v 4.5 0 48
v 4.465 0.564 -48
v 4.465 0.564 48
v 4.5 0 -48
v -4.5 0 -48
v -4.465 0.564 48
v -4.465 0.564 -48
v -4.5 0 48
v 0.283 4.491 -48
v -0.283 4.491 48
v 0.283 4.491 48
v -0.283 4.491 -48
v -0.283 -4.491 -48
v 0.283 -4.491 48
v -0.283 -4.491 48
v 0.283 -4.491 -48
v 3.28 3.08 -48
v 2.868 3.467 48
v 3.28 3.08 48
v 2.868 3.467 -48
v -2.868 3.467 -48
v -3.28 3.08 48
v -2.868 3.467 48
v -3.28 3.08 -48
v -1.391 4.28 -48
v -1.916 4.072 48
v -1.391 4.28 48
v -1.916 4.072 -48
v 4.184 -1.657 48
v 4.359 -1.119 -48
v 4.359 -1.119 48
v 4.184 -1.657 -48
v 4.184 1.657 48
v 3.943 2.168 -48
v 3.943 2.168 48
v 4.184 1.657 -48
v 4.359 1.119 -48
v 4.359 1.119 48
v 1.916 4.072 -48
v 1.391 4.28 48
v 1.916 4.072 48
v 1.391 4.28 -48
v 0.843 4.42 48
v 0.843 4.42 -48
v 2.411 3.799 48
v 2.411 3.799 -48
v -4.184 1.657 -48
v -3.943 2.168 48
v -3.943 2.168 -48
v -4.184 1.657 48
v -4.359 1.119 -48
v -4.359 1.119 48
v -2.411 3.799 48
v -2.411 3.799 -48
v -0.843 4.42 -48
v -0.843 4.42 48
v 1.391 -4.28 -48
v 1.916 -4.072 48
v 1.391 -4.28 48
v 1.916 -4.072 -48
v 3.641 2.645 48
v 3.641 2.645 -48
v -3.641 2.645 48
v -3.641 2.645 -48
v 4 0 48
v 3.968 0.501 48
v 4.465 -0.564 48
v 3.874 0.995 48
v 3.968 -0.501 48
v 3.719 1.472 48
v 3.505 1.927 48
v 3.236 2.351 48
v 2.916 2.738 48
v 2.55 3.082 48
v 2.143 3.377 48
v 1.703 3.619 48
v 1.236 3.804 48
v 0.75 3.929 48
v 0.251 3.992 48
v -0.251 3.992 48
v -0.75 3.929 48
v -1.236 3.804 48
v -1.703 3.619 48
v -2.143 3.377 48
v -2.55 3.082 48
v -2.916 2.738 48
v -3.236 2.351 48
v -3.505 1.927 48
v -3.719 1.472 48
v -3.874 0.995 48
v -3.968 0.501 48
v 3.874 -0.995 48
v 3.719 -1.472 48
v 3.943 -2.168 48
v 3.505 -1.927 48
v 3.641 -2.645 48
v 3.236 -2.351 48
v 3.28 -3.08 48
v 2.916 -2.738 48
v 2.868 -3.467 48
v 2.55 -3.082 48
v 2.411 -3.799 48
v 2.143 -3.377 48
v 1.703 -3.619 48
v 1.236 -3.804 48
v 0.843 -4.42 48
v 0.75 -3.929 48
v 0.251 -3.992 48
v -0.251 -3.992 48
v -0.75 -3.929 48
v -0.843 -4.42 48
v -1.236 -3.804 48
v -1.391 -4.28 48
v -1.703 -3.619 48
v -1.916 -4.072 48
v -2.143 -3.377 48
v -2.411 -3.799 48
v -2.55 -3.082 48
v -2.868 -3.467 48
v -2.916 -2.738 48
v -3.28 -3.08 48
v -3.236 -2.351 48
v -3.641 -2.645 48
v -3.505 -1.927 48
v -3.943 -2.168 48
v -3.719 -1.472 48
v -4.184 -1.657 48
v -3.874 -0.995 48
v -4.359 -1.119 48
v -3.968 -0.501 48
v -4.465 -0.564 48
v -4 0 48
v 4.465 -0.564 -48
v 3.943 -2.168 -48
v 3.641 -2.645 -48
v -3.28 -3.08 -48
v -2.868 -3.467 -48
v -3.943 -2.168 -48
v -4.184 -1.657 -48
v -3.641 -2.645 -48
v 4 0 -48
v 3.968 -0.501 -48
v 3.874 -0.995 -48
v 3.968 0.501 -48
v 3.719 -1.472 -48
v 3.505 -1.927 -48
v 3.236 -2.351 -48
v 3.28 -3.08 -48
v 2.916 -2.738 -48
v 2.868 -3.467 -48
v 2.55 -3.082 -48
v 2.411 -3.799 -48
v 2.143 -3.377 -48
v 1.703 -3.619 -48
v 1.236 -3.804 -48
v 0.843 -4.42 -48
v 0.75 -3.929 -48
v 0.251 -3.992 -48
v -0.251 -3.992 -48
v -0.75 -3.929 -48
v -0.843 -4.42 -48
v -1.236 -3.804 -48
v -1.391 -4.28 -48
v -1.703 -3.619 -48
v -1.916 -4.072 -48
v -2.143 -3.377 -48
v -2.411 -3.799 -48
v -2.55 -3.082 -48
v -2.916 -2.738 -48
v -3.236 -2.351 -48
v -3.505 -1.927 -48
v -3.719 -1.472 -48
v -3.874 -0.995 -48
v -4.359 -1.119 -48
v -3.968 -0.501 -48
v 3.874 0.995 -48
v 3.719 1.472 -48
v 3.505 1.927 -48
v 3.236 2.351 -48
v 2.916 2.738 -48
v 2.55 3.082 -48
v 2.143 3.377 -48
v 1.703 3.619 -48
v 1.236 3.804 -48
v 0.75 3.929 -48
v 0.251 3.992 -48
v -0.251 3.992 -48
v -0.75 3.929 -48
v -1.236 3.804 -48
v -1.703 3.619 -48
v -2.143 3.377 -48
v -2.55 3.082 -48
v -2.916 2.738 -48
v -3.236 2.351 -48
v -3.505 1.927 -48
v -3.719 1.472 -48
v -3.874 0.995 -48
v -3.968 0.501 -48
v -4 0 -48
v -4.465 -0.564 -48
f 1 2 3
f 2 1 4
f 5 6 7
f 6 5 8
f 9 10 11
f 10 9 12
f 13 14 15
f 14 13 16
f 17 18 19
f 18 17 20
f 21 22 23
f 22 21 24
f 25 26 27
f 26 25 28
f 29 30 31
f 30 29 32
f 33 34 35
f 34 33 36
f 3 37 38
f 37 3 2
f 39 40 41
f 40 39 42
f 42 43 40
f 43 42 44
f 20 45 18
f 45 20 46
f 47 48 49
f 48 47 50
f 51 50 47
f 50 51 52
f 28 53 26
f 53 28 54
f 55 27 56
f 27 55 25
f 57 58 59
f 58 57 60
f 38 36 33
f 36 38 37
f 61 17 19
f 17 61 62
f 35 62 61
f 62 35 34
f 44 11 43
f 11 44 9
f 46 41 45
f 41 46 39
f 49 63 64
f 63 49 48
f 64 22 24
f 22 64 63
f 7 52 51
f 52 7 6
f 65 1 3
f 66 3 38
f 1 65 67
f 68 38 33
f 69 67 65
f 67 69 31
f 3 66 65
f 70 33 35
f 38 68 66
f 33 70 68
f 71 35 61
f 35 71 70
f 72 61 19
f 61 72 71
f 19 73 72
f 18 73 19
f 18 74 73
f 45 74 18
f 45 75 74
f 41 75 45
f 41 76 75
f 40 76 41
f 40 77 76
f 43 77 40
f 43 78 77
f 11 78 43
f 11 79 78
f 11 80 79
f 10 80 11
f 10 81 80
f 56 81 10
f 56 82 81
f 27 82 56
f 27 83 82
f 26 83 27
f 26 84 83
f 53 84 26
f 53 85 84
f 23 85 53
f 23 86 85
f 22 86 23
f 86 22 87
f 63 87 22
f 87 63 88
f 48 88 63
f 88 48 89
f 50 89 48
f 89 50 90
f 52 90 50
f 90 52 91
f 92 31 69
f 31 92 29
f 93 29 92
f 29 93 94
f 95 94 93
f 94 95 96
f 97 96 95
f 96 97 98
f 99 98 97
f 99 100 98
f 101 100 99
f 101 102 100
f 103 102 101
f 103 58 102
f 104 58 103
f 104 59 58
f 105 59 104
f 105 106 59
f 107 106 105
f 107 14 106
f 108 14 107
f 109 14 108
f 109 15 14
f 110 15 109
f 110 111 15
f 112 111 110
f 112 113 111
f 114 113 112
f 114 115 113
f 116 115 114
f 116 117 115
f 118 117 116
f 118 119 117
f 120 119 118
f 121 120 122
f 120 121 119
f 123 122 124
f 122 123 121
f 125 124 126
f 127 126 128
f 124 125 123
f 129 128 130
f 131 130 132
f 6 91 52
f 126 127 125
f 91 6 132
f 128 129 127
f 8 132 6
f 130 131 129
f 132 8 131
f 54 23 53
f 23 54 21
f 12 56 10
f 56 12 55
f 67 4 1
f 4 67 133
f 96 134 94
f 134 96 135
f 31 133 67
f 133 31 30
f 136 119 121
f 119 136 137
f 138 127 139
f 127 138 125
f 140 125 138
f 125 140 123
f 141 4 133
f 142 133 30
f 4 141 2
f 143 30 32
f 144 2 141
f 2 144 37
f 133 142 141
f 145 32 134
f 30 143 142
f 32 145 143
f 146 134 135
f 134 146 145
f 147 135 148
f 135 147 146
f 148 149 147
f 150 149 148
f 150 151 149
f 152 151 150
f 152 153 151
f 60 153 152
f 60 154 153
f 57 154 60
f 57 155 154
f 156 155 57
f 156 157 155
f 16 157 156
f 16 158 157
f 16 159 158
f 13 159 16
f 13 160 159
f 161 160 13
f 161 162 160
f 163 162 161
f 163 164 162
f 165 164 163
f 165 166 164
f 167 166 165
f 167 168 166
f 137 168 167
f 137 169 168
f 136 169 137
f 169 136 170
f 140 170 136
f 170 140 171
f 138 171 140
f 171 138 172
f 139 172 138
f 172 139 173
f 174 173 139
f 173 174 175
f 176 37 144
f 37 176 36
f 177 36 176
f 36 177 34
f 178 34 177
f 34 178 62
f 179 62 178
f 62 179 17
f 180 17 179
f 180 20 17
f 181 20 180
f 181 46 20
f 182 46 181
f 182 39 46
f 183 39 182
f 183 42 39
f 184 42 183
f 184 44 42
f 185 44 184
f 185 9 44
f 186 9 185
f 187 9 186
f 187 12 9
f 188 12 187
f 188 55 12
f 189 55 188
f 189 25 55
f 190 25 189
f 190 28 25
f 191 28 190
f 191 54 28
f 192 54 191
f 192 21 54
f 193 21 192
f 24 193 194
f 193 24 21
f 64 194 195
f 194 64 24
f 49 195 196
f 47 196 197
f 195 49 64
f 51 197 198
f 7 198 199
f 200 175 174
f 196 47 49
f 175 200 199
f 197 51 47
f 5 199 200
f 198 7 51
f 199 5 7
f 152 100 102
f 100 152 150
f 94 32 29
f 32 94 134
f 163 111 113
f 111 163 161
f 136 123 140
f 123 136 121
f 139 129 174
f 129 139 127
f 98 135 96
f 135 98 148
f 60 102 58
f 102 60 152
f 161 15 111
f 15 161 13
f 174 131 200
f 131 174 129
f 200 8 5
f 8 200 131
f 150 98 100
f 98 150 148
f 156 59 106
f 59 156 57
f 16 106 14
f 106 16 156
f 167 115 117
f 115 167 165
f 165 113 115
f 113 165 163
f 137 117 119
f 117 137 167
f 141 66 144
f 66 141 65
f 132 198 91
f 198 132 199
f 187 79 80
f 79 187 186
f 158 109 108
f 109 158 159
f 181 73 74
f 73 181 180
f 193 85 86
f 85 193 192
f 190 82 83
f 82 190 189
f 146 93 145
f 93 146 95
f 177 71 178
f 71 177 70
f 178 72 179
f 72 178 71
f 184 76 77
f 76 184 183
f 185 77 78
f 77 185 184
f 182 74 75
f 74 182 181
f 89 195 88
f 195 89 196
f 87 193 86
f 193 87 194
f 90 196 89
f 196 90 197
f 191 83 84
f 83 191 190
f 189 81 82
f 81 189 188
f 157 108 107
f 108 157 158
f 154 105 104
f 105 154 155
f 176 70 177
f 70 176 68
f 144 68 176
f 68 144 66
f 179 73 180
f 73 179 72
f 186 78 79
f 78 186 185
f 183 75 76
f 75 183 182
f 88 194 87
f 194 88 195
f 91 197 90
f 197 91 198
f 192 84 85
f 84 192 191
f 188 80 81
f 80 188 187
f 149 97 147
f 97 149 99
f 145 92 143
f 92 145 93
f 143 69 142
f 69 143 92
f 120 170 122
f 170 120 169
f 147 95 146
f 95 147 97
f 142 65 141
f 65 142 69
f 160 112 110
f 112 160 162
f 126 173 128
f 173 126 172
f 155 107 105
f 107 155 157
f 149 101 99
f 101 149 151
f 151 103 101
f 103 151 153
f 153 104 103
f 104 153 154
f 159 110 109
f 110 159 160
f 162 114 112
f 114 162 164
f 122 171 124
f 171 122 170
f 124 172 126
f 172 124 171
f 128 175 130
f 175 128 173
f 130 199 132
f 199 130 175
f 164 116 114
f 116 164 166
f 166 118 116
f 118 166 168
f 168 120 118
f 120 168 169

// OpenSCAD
$fn = 50;


difference() {
	union() {
		translate(v = [0, 0, -48.0000000000]) {
			cylinder(h = 96, r = 4.5000000000);
		}
	}
	union() {
		translate(v = [0, 0, -100.0000000000]) {
			cylinder(h = 200, r = 4.0000000000);
		}
	}
}
